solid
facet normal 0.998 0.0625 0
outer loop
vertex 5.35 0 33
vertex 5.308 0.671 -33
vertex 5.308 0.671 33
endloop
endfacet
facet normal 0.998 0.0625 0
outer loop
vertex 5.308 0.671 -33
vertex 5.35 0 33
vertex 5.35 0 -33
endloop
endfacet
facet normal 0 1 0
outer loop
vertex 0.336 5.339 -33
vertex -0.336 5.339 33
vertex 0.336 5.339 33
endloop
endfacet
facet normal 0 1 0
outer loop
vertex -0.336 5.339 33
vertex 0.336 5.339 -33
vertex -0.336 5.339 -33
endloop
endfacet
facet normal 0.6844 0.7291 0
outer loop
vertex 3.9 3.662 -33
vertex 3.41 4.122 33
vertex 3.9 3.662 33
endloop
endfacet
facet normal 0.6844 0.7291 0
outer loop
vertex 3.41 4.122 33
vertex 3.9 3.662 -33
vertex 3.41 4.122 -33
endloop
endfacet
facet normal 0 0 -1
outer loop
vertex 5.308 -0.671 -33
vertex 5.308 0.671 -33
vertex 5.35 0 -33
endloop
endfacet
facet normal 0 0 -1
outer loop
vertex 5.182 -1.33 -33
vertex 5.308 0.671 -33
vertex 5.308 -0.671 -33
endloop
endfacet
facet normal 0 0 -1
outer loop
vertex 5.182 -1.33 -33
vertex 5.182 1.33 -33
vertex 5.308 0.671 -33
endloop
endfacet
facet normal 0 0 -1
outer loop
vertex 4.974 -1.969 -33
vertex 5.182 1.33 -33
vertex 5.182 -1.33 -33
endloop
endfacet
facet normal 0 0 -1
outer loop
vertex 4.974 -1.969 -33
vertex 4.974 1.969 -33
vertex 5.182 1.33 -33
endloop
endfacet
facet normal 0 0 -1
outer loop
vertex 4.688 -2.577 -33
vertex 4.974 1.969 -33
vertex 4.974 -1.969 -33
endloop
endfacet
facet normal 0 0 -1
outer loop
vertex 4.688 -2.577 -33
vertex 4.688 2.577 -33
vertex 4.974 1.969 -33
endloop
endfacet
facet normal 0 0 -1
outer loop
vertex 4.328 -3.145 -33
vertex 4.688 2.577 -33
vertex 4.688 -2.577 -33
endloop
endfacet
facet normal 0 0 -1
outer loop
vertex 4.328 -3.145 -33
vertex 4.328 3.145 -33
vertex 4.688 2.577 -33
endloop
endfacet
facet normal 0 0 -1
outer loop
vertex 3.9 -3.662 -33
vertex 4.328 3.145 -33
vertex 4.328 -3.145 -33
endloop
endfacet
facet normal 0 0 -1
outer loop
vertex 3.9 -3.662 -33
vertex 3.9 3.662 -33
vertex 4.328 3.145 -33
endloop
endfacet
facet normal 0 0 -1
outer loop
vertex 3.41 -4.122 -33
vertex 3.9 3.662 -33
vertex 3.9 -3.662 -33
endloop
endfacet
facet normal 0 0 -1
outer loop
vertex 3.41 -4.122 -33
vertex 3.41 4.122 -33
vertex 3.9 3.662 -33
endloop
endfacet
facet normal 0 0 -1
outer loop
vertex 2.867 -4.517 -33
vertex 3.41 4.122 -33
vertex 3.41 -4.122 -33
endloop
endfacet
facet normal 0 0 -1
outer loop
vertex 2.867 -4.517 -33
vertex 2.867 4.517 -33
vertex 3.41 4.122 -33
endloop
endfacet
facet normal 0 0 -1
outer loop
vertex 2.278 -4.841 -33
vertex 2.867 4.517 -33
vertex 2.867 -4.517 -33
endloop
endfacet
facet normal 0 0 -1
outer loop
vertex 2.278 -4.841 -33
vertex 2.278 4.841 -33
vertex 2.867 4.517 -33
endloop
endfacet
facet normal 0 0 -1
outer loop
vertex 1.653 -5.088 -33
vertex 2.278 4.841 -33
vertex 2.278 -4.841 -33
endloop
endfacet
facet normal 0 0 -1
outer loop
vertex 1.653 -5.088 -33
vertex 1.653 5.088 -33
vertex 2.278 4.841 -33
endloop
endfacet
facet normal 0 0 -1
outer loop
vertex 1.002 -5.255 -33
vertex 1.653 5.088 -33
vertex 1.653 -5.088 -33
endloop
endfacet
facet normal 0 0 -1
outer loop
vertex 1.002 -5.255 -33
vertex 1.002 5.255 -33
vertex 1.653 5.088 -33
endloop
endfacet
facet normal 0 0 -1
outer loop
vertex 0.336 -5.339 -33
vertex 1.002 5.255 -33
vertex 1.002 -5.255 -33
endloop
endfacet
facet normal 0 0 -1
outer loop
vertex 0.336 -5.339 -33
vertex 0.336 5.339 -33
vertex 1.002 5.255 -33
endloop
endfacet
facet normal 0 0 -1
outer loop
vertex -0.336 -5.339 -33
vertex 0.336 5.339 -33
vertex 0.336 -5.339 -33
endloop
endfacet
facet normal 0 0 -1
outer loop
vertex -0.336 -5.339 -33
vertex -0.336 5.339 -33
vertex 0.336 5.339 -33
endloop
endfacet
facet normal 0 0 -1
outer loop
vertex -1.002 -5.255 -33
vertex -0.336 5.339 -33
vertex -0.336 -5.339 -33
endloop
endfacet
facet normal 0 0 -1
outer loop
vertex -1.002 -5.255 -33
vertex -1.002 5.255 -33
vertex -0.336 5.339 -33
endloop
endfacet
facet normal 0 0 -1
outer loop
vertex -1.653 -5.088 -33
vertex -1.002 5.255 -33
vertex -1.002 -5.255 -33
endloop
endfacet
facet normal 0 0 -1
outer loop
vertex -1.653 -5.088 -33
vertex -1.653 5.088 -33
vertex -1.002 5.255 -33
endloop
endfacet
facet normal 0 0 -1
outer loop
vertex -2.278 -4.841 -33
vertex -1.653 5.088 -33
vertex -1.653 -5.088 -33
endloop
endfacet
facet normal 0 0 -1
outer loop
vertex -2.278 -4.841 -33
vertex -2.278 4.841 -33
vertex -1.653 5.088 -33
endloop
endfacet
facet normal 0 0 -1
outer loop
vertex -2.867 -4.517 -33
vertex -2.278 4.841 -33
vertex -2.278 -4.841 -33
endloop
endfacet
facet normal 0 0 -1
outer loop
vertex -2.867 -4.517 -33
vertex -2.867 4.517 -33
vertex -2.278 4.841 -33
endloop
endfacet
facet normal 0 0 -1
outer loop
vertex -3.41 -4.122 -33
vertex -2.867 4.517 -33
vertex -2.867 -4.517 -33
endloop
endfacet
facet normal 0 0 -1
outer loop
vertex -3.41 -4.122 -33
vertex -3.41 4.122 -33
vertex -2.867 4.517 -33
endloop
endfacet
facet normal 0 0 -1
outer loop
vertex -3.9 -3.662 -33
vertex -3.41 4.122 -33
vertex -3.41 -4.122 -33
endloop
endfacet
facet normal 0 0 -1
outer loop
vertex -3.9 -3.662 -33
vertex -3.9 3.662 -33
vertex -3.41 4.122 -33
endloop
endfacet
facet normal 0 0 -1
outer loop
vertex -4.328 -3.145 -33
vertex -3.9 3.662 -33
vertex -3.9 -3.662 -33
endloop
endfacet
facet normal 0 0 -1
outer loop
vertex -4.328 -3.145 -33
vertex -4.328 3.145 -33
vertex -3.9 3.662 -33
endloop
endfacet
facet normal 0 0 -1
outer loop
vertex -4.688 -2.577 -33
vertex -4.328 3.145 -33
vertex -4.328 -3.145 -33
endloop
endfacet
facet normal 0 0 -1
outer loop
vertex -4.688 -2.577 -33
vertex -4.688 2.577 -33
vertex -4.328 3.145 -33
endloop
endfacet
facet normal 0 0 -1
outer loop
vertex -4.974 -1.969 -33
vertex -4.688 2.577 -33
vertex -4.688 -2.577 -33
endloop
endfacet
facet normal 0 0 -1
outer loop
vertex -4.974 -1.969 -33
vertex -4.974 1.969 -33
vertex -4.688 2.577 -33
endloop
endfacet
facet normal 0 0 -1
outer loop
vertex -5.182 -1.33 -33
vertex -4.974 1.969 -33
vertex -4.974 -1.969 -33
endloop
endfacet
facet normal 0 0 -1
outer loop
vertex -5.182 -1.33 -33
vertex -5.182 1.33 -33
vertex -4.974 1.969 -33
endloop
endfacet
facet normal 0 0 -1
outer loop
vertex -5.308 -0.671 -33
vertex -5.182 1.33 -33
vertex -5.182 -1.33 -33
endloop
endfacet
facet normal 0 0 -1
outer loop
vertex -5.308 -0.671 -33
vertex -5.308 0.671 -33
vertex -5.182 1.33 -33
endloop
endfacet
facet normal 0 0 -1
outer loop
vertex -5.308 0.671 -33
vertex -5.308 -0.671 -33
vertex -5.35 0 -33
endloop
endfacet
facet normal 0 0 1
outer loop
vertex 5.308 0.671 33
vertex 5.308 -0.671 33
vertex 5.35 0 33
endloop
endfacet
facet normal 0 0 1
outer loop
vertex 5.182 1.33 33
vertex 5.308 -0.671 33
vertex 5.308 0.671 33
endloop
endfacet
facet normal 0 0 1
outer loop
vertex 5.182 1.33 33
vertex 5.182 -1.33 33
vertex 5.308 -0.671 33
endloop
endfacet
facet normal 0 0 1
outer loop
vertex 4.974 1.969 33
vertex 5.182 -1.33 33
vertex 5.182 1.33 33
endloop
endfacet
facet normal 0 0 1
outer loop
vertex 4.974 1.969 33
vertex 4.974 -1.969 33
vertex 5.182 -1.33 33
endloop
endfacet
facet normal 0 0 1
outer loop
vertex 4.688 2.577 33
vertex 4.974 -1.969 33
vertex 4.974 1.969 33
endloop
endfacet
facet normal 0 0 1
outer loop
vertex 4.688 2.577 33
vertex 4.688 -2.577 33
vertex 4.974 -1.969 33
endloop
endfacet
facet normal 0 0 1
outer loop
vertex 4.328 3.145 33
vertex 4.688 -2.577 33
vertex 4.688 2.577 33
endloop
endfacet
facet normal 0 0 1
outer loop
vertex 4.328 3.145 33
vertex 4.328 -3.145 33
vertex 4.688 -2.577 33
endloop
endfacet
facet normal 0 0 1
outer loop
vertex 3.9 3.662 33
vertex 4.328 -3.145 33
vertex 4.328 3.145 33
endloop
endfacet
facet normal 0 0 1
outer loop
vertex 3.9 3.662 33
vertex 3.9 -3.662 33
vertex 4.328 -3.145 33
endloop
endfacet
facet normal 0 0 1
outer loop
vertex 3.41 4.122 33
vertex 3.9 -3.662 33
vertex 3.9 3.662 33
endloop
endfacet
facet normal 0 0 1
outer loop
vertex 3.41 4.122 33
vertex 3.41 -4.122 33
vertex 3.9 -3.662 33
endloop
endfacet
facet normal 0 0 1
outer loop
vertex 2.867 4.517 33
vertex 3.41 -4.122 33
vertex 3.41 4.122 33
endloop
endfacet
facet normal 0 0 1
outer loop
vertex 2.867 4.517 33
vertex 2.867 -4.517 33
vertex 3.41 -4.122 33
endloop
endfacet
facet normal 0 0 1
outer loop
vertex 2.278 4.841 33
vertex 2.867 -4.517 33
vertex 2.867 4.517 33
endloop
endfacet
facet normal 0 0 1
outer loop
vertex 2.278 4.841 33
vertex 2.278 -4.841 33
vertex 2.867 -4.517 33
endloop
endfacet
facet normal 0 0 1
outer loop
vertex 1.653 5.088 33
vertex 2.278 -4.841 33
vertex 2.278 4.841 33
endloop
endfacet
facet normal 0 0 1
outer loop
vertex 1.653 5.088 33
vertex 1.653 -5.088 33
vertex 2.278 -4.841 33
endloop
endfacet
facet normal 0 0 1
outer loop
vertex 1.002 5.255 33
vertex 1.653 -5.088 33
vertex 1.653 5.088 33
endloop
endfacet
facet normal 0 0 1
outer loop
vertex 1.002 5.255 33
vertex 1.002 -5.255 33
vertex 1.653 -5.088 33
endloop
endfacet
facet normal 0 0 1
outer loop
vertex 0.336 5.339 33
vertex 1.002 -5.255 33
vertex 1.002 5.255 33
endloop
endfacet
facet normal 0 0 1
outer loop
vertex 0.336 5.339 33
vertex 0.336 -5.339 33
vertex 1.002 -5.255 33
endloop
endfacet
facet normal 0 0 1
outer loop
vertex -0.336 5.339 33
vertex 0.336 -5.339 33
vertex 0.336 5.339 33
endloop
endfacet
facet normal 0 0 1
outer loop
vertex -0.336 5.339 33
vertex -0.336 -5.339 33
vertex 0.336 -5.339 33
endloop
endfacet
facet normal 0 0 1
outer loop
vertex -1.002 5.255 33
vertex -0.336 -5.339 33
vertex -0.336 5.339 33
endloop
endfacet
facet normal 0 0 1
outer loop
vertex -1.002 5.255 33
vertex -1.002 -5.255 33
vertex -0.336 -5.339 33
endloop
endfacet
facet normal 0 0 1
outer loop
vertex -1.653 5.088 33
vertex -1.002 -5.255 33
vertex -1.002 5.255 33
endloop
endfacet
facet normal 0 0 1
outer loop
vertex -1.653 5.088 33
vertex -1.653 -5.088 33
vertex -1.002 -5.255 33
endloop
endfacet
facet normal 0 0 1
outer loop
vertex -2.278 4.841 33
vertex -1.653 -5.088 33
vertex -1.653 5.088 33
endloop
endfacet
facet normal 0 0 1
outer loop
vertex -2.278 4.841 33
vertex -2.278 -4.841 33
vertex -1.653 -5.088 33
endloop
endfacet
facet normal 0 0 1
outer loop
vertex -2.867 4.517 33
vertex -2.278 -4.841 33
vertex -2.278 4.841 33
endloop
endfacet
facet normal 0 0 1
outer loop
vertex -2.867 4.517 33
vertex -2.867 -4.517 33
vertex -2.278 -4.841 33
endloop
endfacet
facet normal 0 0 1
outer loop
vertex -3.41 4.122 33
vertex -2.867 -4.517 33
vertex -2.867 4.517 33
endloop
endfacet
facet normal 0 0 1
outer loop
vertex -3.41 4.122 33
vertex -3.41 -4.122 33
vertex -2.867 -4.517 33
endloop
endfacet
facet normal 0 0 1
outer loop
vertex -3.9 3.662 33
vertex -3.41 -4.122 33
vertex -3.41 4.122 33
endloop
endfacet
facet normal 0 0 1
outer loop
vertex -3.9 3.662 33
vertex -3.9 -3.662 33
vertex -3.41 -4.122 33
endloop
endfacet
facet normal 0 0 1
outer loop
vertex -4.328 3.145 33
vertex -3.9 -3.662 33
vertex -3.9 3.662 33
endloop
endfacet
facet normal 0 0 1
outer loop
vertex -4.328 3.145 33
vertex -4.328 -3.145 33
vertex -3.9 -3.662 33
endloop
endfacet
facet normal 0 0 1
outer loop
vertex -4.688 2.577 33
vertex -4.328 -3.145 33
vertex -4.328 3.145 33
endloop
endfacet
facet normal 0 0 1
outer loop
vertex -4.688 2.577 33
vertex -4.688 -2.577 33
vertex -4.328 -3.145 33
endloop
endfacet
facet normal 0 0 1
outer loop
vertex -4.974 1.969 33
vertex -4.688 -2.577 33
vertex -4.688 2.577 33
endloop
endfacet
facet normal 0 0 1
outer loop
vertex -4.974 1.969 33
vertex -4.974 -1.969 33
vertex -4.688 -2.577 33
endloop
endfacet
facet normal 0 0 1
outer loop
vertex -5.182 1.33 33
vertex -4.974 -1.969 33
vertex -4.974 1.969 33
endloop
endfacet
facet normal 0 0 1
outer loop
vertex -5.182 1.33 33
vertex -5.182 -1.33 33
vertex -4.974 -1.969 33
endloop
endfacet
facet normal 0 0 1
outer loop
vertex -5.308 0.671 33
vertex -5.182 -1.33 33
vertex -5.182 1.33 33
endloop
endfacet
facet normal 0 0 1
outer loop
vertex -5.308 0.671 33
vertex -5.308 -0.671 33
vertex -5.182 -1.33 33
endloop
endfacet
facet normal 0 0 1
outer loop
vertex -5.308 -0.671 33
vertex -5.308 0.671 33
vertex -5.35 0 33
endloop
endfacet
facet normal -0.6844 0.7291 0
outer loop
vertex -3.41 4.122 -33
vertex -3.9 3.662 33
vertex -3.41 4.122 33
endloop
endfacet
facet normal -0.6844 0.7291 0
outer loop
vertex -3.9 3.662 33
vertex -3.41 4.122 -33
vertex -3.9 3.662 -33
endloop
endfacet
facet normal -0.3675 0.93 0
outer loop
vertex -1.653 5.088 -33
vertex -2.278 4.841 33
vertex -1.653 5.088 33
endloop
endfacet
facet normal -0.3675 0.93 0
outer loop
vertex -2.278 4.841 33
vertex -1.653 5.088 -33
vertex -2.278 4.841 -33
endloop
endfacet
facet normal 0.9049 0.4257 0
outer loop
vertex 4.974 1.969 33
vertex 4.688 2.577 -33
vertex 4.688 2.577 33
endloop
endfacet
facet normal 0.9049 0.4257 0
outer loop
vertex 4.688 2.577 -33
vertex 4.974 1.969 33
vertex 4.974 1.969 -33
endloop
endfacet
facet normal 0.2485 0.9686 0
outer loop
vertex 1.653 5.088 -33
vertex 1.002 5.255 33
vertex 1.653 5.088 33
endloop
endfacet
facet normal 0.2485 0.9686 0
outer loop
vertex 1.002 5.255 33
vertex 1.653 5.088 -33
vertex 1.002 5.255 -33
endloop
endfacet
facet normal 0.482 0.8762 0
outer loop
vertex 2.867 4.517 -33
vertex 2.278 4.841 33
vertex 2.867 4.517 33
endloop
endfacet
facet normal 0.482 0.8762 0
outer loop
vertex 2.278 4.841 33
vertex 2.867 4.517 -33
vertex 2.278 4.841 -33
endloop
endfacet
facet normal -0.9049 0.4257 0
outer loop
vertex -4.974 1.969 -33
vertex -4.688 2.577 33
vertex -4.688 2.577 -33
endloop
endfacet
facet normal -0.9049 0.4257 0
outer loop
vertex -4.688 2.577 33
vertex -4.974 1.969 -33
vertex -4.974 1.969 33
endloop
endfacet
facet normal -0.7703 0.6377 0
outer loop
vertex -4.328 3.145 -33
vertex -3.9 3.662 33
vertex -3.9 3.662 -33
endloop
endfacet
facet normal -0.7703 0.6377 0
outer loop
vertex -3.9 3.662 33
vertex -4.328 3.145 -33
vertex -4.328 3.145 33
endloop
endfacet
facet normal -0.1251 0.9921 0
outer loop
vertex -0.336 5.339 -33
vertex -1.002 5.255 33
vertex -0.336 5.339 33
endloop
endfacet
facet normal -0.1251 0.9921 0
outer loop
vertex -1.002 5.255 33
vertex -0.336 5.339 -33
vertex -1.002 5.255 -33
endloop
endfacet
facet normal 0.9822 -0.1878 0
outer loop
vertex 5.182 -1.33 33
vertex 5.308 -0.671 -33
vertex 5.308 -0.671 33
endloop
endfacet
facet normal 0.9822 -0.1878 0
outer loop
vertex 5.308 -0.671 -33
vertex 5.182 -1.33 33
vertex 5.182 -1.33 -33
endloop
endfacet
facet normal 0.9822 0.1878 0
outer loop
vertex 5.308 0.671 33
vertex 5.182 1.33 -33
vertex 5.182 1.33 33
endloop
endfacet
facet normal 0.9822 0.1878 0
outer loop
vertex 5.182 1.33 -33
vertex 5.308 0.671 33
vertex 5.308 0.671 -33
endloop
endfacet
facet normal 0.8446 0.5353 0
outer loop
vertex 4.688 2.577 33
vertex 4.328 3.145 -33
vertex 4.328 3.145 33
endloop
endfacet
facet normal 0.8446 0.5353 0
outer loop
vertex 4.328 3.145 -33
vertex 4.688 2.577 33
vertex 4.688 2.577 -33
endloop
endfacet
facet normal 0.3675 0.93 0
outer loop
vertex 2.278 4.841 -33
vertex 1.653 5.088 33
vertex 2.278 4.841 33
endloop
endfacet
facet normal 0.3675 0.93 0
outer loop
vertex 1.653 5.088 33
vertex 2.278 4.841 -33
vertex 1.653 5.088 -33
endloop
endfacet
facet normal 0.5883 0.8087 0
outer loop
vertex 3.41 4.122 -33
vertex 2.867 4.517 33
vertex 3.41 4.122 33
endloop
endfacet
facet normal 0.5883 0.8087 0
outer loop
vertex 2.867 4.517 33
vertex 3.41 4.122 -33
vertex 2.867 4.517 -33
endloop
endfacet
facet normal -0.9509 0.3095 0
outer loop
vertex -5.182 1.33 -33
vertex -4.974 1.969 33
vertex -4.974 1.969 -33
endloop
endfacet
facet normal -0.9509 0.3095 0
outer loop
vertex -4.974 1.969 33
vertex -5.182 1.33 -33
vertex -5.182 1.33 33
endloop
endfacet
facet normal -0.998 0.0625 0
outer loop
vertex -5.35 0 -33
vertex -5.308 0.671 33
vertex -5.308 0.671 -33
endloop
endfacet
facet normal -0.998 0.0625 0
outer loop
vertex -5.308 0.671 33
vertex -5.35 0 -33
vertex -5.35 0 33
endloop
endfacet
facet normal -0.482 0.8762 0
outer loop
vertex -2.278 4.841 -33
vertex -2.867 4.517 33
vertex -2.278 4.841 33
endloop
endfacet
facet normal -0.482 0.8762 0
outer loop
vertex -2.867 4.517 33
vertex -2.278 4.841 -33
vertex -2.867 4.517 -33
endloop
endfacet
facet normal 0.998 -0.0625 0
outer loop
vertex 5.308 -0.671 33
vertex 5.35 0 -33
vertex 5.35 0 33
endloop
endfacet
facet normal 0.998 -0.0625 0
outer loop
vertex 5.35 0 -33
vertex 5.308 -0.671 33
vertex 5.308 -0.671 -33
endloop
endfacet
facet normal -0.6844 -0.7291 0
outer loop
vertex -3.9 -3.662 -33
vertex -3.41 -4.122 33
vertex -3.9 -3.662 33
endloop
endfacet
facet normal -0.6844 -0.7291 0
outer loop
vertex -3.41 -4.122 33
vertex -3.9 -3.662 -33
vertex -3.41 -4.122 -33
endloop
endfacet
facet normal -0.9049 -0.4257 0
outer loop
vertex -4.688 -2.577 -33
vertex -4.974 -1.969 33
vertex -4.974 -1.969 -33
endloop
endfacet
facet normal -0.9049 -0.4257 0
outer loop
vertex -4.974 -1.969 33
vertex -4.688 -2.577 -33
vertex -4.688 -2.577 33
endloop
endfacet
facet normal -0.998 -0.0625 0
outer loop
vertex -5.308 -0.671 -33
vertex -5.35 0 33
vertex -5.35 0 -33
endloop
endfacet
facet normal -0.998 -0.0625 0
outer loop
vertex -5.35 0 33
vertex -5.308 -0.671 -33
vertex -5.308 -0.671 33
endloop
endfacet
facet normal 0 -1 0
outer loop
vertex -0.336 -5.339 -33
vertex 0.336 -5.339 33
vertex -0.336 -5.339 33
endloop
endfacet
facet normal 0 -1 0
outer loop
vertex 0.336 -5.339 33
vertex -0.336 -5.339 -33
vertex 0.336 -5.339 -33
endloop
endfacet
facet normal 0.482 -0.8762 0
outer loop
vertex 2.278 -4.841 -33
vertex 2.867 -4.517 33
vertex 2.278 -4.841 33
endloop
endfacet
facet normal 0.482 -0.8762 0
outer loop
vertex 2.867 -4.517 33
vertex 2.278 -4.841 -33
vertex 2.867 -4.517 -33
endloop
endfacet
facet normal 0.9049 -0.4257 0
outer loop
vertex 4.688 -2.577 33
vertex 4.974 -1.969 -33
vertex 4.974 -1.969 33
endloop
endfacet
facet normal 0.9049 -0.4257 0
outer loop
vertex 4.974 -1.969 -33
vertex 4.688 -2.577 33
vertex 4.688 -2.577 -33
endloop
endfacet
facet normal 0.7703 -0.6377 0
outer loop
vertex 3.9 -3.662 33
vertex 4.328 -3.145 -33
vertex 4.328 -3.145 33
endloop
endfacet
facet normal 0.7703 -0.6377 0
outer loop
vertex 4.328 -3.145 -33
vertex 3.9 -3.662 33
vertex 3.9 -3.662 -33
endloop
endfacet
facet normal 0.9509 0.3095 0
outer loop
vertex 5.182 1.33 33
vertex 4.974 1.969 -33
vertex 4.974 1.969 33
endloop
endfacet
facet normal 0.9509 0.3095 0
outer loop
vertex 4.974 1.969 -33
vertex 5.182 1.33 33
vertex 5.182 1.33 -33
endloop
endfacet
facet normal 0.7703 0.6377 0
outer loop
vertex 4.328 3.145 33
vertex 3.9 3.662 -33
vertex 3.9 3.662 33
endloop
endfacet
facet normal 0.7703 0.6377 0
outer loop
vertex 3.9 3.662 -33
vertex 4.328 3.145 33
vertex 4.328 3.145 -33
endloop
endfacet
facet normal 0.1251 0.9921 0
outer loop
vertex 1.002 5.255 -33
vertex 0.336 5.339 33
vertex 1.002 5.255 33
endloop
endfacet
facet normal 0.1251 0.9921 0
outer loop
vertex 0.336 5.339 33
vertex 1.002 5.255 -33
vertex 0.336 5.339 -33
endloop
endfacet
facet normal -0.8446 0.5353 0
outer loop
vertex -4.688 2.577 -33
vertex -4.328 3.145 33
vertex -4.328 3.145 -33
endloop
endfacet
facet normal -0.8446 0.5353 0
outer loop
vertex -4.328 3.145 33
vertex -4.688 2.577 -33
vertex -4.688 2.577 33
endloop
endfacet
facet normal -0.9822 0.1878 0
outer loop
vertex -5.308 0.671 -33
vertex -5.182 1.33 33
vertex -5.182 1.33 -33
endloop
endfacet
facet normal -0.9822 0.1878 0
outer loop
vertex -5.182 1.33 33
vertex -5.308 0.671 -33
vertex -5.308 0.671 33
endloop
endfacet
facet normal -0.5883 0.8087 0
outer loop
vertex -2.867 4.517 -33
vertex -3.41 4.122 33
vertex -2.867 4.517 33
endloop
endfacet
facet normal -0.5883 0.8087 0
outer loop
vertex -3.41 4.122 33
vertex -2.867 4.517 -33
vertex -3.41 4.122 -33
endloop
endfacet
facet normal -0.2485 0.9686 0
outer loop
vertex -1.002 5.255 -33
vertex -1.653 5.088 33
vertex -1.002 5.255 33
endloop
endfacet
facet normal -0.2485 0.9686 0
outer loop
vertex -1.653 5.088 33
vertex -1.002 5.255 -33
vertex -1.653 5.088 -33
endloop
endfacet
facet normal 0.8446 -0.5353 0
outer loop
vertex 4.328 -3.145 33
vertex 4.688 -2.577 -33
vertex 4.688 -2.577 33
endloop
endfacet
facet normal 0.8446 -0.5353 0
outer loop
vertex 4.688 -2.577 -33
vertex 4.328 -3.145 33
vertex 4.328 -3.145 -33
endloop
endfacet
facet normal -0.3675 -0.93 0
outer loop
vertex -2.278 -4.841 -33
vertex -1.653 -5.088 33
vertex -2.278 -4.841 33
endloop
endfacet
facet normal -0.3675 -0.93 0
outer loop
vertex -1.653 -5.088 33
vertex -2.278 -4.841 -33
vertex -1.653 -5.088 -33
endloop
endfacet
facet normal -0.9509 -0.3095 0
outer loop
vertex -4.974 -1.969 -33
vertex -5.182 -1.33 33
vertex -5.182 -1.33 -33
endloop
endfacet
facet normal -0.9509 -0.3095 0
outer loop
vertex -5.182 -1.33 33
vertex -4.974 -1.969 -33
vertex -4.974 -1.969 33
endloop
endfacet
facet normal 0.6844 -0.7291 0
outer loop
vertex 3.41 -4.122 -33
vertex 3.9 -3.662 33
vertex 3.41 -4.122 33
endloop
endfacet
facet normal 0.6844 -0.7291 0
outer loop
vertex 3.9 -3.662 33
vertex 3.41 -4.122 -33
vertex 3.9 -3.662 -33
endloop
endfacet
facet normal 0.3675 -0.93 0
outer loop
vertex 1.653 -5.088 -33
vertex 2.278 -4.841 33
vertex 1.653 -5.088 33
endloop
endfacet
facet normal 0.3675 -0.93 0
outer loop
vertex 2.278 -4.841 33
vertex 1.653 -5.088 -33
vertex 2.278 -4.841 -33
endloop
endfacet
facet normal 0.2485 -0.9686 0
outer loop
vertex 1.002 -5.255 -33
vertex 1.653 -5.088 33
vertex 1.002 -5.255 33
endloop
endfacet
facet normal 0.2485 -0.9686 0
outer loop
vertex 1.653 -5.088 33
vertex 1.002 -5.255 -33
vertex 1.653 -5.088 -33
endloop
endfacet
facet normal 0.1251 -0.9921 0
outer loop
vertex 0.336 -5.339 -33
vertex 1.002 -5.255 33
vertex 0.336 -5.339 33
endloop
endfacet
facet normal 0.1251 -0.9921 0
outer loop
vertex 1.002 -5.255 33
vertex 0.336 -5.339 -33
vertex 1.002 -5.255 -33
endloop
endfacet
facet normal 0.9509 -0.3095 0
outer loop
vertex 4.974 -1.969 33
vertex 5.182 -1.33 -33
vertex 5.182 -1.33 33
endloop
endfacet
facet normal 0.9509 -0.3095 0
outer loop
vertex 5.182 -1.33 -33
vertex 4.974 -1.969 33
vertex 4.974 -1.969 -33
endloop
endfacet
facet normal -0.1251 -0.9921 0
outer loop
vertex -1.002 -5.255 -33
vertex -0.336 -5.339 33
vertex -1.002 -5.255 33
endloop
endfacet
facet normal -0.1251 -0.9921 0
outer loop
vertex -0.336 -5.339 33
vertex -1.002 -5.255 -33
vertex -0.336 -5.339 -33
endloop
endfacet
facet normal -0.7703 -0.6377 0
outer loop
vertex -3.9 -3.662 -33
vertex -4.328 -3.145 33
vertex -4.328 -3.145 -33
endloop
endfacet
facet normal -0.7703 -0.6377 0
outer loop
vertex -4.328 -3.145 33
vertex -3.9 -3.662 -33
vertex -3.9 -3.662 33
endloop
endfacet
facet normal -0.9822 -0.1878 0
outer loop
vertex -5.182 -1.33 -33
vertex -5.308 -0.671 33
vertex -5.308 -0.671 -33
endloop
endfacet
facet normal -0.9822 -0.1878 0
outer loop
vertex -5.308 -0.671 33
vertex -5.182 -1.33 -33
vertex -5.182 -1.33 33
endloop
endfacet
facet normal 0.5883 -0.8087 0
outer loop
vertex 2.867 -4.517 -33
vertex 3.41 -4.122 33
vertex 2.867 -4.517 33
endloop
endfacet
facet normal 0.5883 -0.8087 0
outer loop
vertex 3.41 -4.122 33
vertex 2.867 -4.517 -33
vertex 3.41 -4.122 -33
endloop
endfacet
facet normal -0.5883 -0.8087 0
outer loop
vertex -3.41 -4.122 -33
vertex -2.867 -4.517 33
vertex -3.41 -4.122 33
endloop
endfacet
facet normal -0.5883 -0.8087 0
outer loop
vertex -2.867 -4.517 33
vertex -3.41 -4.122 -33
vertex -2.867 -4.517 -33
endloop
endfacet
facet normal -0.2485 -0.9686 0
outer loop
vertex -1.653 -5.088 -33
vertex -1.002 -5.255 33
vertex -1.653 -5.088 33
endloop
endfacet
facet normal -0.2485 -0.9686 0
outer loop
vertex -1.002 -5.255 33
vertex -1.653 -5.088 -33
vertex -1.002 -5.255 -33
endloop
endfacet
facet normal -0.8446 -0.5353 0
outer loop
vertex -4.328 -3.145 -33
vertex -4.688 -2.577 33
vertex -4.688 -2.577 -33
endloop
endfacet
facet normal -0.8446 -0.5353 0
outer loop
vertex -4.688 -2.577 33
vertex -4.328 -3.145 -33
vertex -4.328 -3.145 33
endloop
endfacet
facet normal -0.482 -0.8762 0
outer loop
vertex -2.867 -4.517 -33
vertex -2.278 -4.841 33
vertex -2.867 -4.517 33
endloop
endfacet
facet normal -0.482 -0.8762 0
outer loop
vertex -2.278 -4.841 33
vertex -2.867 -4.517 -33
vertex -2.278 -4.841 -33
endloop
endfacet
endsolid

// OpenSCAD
$fn = 50;


difference() {
	union() {
		translate(v = [0, 0, -33.0000000000]) {
			cylinder(h = 66, r = 5.3500000000);
		}
	}
	union() {
		translate(v = [0, 0, -100.0000000000]) {
			cylinder(h = 200, r = 0);
		}
	}
}
